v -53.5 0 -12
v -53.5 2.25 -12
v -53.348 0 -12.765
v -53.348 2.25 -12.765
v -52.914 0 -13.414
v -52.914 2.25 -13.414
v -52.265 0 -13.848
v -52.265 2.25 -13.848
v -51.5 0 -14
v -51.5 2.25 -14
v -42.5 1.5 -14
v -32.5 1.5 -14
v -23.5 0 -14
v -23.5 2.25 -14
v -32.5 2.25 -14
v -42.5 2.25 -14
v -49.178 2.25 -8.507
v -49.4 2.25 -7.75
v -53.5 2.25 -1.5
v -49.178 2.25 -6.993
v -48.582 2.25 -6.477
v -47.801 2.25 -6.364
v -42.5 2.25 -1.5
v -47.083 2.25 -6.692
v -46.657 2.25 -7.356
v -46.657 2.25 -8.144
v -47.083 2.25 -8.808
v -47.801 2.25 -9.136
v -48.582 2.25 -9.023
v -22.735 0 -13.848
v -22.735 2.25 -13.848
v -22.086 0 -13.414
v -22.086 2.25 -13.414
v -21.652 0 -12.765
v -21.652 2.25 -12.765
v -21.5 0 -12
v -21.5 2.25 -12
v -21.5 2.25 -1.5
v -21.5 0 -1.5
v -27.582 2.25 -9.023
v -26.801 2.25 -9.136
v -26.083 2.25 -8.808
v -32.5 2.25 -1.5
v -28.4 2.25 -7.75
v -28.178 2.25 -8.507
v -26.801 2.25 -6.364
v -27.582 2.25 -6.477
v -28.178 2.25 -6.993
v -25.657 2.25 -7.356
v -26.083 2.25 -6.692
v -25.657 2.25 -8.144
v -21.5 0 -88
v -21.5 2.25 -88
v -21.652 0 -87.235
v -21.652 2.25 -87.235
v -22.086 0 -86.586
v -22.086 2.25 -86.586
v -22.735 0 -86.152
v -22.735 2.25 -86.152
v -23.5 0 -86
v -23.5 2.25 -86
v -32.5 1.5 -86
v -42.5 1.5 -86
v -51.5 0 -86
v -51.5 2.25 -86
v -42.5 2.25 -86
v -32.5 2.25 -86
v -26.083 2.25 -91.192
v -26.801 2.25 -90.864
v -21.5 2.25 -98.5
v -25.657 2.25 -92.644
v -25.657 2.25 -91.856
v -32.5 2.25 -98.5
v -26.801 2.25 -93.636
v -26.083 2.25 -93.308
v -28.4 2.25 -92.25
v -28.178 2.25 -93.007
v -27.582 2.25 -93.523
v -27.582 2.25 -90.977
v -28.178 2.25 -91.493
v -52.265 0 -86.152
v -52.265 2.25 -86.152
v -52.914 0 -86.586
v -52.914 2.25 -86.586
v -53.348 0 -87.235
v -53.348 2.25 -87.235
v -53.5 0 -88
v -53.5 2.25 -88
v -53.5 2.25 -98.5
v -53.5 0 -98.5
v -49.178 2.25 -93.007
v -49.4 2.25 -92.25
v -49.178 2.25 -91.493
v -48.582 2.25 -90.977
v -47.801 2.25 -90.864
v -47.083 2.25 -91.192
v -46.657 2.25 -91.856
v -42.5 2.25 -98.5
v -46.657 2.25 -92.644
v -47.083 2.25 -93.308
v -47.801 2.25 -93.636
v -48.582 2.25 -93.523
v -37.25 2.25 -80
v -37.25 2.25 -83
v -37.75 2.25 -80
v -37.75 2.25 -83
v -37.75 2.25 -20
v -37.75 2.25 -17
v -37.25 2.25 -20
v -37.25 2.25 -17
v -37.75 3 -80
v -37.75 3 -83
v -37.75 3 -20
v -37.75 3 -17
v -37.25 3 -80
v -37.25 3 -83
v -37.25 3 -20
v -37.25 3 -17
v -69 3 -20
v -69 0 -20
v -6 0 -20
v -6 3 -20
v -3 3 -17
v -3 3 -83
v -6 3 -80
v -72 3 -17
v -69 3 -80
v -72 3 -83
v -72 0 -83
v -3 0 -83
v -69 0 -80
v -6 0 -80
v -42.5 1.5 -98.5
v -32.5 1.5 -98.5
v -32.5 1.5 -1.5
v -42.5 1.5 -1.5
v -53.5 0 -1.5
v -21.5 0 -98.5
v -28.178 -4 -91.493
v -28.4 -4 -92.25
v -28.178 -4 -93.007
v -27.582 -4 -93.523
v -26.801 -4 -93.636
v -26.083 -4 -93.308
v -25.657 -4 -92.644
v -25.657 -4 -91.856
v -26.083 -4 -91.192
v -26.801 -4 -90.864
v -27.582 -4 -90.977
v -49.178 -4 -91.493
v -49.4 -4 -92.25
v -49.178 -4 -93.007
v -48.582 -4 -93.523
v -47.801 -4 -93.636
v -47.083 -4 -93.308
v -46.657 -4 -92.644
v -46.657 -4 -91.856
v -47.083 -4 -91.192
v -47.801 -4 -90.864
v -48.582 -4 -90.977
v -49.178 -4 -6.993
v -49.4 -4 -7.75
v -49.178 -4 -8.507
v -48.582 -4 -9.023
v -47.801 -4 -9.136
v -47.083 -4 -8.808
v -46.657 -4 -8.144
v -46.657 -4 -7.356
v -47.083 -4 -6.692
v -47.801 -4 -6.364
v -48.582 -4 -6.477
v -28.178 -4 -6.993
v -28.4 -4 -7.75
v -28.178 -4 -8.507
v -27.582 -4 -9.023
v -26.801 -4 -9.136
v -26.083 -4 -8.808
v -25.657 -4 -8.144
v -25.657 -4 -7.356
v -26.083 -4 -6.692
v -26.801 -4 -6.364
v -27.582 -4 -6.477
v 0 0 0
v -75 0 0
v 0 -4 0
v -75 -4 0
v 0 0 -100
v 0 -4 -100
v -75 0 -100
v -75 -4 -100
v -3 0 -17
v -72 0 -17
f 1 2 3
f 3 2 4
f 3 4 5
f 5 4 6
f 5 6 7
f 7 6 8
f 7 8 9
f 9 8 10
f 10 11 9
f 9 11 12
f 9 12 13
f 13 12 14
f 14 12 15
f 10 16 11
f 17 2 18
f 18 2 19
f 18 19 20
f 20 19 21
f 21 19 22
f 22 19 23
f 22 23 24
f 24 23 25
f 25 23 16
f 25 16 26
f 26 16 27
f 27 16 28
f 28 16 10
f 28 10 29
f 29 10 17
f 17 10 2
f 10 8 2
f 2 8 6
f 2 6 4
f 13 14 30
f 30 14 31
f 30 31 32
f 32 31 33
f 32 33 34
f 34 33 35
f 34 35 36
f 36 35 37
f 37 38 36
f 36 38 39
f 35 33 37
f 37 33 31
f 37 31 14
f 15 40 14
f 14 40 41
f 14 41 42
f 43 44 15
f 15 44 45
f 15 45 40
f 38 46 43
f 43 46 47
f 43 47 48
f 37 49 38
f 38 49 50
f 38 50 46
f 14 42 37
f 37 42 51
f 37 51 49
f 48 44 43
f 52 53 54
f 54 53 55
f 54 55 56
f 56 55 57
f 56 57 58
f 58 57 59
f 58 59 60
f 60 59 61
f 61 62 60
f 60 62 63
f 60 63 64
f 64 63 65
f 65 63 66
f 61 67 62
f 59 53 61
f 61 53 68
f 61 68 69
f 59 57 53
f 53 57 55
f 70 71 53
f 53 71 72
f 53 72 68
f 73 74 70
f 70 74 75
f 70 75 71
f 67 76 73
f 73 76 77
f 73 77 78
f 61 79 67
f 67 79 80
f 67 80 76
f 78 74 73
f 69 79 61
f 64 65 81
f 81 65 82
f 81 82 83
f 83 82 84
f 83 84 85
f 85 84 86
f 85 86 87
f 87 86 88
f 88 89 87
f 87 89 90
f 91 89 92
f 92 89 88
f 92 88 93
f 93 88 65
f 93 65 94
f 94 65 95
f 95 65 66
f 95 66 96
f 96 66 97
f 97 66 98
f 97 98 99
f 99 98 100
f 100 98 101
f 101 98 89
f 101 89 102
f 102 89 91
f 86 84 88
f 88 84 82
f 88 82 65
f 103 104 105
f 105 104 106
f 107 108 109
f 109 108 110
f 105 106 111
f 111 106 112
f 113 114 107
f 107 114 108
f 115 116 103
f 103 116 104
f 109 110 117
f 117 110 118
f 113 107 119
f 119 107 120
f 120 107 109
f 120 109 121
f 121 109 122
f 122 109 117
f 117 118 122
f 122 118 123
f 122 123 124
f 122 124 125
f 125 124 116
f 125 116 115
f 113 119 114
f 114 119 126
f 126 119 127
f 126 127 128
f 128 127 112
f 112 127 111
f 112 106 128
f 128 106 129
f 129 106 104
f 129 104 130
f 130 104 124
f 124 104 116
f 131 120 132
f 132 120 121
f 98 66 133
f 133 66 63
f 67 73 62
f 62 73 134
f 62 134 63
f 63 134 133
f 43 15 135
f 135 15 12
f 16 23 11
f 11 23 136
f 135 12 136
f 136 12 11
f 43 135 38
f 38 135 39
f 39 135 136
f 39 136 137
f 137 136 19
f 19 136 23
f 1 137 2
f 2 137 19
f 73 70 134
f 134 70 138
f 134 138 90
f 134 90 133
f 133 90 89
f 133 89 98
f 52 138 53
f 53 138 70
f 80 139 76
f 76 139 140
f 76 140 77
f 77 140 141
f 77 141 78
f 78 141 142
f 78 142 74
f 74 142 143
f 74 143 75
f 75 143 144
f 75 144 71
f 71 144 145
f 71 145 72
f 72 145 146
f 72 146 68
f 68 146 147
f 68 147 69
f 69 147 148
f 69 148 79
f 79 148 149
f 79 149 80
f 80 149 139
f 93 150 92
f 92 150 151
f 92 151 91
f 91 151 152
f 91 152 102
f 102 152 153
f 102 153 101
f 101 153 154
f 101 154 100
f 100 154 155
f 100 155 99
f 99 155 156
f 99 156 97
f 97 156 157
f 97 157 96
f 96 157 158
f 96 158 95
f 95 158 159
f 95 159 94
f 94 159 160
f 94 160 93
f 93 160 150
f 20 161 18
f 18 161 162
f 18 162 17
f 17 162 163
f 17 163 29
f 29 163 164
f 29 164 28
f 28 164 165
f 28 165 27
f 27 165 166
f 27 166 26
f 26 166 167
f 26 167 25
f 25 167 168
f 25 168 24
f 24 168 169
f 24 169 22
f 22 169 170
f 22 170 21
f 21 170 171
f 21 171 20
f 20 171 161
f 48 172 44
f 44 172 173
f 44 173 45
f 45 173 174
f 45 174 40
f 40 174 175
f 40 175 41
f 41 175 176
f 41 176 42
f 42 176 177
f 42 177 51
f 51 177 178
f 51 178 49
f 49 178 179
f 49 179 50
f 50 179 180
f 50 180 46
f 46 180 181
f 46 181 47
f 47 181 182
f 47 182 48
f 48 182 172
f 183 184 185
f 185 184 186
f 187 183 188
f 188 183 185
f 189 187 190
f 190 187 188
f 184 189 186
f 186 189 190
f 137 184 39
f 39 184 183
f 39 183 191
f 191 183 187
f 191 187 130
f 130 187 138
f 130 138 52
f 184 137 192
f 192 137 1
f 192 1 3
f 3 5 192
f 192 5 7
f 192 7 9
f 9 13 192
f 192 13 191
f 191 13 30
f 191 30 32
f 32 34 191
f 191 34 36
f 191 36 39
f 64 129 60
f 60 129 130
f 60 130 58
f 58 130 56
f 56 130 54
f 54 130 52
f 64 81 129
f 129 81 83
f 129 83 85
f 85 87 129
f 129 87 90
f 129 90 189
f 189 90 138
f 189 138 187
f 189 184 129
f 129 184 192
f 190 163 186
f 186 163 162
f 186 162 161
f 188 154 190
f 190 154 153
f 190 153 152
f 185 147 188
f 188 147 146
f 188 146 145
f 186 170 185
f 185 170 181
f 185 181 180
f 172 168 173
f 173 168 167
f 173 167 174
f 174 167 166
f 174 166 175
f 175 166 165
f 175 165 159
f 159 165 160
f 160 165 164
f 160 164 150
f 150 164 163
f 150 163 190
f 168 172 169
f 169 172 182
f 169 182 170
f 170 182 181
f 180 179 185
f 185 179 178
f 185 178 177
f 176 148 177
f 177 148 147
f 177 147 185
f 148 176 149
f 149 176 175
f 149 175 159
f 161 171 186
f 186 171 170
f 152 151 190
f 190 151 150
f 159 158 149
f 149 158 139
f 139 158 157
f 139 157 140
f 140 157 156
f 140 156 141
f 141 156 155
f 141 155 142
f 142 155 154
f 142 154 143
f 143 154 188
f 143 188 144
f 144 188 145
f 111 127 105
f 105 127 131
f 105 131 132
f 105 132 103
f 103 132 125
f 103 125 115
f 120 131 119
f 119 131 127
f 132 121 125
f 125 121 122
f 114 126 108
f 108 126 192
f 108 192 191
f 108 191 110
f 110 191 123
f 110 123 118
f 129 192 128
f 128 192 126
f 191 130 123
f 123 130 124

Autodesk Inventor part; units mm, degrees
ref_plane "YZ Plane" through (0, 0, 0) normal (1, 0, 0) x (0, 1, 0)
ref_plane "XZ Plane" through (0, 0, 0) normal (0, 1, 0) x (-1, 0, 0)
ref_plane "XY Plane" through (0, 0, 0) normal (0, 0, 1) x (1, 0, 0)
sketch "Boceto1" plane through (0, 0, 0) normal (0, 1, 0) x (-1, 0, 0)
  line L0 (0, 0) -> (75, 0)
  line L1 (75, 0) -> (75, -100)
  line L2 (75, -100) -> (0, -100)
  line L3 (0, -100) -> (0, 0)
  line L4 (6, -80) -> (69, -80)
  line L5 (69, -80) -> (69, -20)
  line L6 (69, -20) -> (6, -20)
  line L7 (6, -20) -> (6, -80)
  line L8 (6, -80) -> (69, -20) construction
  line L9 (69, -80) -> (6, -20) construction
  line L10 (72, -17) -> (72, -83)
  line L11 (72, -83) -> (3, -83)
  line L12 (3, -83) -> (3, -17)
  line L13 (3, -17) -> (72, -17)
  line L14 (53.5, -1.5) -> (21.5, -1.5)
  line L15 (21.5, -1.5) -> (21.5, -14)
  line L16 (21.5, -14) -> (53.5, -14)
  line L17 (53.5, -14) -> (53.5, -1.5)
  line L18 (69, -50) -> (6, -50) construction
  line L19 (53.5, -7.75) -> (48, -7.75) construction
  line L20 (48, -7.75) -> (27, -7.75) construction
  line L21 (27, -7.75) -> (21.5, -7.75) construction
  circle A0 centre (48, -7.75) radius 1.4
  circle A1 centre (27, -7.75) radius 1.4
  line L22 (53.5, -98.5) -> (21.5, -98.5)
  line L23 (21.5, -98.5) -> (21.5, -86)
  line L24 (21.5, -86) -> (53.5, -86)
  line L25 (53.5, -86) -> (53.5, -98.5)
  circle A2 centre (48, -92.25) radius 1.4
  circle A3 centre (27, -92.25) radius 1.4
  line L26 (58.4347, 0) -> (58.4347, -14) construction
  line L27 (68.2, -14.5) -> (75, -14.5) construction
  line L28 (37.5, -20) -> (37.5, -80) construction
  circle A4 centre (48, -92.25) radius 1.4
  line L29 (48, -7.75) -> (27, -7.75)
  line L30 (37.5, -1.5) -> (37.5, 0)
  line L31 (37.5, -1.5) -> (37.5, -50)
  point P0 (37.5, -14)
  point P1 (37.5, -17)
  point P2 (37.5, -98.5)
  point P3 (37.5, -100)
  dimension "d0" = 100
  dimension "d1" = 75
  dimension "d2" = 60
  dimension "d3" = 63
  dimension "d4" = 3
  dimension "d5" = 12.5
  dimension "d6" = 32
  dimension "d8" = 5.5
  dimension "d9" = 5.5
  dimension "d10" = 2.8
  dimension "d11" = 2.8
  dimension "d14" = 14
  dimension "d32" = 1.5
  dimension "d36" = 1.5
extrude "Extrusión1" add sketch "Boceto1" along normal blind 3 contours L13 L10 L11 L12
extrude "Extrusión2" add sketch "Boceto1" against normal blind 4 contours L14 L17 L16 L31 | L31 L16 L15 L14 | L0 L1 L2 L3 | L22 L23 L24 L25
extrude "Extrusión3" add sketch "Boceto1" along normal blind 2.25 contours L14 L17 L16 L31 | L31 L16 L15 L14 | L22 L23 L24 L25
sketch "Boceto2" plane through (0, 2.25, 0) normal (0, 1, 0) x (1, 0, 0)
  line L0 (-53.5, 1.5) -> (-21.5, 1.5) projected
  line L1 (-37.5, 1.5) -> (-37.5, 14)
  line L2 (-21.5, 14) -> (-53.5, 14) projected
  line L3 (-32.5, 1.5) -> (-42.5, 1.5)
  line L4 (-42.5, 1.5) -> (-42.5, 14)
  line L5 (-42.5, 14) -> (-32.5, 14)
  line L6 (-32.5, 14) -> (-32.5, 1.5)
  line L7 (-32.5, 1.5) -> (-42.5, 14) construction
  line L8 (-42.5, 1.5) -> (-32.5, 14) construction
  line L9 (-69, 50) -> (-6, 50) construction
  line L10 (-53.5, 98.5) -> (-21.5, 98.5)
  line L11 (-21.5, 86) -> (-53.5, 86)
  line L12 (-42.5, 98.5) -> (-42.5, 86)
  line L13 (-32.5, 86) -> (-32.5, 98.5)
  point P0 (0, 0)
  point P1 (-37.5, 7.75)
  point P2 (-42.5, 98.5)
  point P3 (-42.5, 1.5)
  point P4 (-32.5, 1.5)
  point P5 (-32.5, 14)
  dimension "d22" = 10
extrude "Extrusión4" cut sketch "Boceto2" against normal blind 0.75
extrude "Extrusión5" add sketch "Boceto1" against normal blind 4 contours L6 L5 L4 L7 | L13 L10 L11 L12
sketch "Boceto3" plane through (0, 3, 0) normal (0, 1, 0) x (1, 0, 0)
  line L0 (-37.5, 20) -> (-37.5, 80) construction
  line L1 (-72, 17) -> (-3, 17) projected
  line L2 (-37.5, 17) -> (-37.5, 83)
  line L3 (-3, 83) -> (-72, 83) projected
  line L4 (-37.25, 17) -> (-37.75, 17)
  line L5 (-37.75, 17) -> (-37.75, 83)
  line L6 (-37.75, 83) -> (-37.25, 83)
  line L7 (-37.25, 83) -> (-37.25, 17)
  line L8 (-37.25, 17) -> (-37.75, 83) construction
  line L9 (-37.75, 17) -> (-37.25, 83) construction
  point P0 (0, 0)
  point P1 (-37.5, 50)
  point P2 (-37.25, 83)
  point P3 (-37.75, 17)
  dimension "d27" = 0.5
extrude "Extrusión6" cut sketch "Boceto3" against normal blind 0.75
sketch "Boceto4" plane through (-53.5, 0, -1.5) normal (0, 0, 1) x (1, 0, 0)
  line L0 (16.25, 2.25) -> (15.75, 2.25) projected
  line L1 (21, 1.5) -> (11, 1.5) projected
  line L2 (-21.5, 0) -> (53.5, 0) projected
  line L3 (15.75, 2.25) -> (15.75, 3) projected
fillet "Empalme1" radius 2 4 edges at (-53.5, 1.125, -86) (-21.5, 1.125, -86) (-21.5, 1.125, -14) (-53.5, 1.125, -14)
equation "\"d9\" = d8"
properties part number "Molde 663FBR 0.75mm"
